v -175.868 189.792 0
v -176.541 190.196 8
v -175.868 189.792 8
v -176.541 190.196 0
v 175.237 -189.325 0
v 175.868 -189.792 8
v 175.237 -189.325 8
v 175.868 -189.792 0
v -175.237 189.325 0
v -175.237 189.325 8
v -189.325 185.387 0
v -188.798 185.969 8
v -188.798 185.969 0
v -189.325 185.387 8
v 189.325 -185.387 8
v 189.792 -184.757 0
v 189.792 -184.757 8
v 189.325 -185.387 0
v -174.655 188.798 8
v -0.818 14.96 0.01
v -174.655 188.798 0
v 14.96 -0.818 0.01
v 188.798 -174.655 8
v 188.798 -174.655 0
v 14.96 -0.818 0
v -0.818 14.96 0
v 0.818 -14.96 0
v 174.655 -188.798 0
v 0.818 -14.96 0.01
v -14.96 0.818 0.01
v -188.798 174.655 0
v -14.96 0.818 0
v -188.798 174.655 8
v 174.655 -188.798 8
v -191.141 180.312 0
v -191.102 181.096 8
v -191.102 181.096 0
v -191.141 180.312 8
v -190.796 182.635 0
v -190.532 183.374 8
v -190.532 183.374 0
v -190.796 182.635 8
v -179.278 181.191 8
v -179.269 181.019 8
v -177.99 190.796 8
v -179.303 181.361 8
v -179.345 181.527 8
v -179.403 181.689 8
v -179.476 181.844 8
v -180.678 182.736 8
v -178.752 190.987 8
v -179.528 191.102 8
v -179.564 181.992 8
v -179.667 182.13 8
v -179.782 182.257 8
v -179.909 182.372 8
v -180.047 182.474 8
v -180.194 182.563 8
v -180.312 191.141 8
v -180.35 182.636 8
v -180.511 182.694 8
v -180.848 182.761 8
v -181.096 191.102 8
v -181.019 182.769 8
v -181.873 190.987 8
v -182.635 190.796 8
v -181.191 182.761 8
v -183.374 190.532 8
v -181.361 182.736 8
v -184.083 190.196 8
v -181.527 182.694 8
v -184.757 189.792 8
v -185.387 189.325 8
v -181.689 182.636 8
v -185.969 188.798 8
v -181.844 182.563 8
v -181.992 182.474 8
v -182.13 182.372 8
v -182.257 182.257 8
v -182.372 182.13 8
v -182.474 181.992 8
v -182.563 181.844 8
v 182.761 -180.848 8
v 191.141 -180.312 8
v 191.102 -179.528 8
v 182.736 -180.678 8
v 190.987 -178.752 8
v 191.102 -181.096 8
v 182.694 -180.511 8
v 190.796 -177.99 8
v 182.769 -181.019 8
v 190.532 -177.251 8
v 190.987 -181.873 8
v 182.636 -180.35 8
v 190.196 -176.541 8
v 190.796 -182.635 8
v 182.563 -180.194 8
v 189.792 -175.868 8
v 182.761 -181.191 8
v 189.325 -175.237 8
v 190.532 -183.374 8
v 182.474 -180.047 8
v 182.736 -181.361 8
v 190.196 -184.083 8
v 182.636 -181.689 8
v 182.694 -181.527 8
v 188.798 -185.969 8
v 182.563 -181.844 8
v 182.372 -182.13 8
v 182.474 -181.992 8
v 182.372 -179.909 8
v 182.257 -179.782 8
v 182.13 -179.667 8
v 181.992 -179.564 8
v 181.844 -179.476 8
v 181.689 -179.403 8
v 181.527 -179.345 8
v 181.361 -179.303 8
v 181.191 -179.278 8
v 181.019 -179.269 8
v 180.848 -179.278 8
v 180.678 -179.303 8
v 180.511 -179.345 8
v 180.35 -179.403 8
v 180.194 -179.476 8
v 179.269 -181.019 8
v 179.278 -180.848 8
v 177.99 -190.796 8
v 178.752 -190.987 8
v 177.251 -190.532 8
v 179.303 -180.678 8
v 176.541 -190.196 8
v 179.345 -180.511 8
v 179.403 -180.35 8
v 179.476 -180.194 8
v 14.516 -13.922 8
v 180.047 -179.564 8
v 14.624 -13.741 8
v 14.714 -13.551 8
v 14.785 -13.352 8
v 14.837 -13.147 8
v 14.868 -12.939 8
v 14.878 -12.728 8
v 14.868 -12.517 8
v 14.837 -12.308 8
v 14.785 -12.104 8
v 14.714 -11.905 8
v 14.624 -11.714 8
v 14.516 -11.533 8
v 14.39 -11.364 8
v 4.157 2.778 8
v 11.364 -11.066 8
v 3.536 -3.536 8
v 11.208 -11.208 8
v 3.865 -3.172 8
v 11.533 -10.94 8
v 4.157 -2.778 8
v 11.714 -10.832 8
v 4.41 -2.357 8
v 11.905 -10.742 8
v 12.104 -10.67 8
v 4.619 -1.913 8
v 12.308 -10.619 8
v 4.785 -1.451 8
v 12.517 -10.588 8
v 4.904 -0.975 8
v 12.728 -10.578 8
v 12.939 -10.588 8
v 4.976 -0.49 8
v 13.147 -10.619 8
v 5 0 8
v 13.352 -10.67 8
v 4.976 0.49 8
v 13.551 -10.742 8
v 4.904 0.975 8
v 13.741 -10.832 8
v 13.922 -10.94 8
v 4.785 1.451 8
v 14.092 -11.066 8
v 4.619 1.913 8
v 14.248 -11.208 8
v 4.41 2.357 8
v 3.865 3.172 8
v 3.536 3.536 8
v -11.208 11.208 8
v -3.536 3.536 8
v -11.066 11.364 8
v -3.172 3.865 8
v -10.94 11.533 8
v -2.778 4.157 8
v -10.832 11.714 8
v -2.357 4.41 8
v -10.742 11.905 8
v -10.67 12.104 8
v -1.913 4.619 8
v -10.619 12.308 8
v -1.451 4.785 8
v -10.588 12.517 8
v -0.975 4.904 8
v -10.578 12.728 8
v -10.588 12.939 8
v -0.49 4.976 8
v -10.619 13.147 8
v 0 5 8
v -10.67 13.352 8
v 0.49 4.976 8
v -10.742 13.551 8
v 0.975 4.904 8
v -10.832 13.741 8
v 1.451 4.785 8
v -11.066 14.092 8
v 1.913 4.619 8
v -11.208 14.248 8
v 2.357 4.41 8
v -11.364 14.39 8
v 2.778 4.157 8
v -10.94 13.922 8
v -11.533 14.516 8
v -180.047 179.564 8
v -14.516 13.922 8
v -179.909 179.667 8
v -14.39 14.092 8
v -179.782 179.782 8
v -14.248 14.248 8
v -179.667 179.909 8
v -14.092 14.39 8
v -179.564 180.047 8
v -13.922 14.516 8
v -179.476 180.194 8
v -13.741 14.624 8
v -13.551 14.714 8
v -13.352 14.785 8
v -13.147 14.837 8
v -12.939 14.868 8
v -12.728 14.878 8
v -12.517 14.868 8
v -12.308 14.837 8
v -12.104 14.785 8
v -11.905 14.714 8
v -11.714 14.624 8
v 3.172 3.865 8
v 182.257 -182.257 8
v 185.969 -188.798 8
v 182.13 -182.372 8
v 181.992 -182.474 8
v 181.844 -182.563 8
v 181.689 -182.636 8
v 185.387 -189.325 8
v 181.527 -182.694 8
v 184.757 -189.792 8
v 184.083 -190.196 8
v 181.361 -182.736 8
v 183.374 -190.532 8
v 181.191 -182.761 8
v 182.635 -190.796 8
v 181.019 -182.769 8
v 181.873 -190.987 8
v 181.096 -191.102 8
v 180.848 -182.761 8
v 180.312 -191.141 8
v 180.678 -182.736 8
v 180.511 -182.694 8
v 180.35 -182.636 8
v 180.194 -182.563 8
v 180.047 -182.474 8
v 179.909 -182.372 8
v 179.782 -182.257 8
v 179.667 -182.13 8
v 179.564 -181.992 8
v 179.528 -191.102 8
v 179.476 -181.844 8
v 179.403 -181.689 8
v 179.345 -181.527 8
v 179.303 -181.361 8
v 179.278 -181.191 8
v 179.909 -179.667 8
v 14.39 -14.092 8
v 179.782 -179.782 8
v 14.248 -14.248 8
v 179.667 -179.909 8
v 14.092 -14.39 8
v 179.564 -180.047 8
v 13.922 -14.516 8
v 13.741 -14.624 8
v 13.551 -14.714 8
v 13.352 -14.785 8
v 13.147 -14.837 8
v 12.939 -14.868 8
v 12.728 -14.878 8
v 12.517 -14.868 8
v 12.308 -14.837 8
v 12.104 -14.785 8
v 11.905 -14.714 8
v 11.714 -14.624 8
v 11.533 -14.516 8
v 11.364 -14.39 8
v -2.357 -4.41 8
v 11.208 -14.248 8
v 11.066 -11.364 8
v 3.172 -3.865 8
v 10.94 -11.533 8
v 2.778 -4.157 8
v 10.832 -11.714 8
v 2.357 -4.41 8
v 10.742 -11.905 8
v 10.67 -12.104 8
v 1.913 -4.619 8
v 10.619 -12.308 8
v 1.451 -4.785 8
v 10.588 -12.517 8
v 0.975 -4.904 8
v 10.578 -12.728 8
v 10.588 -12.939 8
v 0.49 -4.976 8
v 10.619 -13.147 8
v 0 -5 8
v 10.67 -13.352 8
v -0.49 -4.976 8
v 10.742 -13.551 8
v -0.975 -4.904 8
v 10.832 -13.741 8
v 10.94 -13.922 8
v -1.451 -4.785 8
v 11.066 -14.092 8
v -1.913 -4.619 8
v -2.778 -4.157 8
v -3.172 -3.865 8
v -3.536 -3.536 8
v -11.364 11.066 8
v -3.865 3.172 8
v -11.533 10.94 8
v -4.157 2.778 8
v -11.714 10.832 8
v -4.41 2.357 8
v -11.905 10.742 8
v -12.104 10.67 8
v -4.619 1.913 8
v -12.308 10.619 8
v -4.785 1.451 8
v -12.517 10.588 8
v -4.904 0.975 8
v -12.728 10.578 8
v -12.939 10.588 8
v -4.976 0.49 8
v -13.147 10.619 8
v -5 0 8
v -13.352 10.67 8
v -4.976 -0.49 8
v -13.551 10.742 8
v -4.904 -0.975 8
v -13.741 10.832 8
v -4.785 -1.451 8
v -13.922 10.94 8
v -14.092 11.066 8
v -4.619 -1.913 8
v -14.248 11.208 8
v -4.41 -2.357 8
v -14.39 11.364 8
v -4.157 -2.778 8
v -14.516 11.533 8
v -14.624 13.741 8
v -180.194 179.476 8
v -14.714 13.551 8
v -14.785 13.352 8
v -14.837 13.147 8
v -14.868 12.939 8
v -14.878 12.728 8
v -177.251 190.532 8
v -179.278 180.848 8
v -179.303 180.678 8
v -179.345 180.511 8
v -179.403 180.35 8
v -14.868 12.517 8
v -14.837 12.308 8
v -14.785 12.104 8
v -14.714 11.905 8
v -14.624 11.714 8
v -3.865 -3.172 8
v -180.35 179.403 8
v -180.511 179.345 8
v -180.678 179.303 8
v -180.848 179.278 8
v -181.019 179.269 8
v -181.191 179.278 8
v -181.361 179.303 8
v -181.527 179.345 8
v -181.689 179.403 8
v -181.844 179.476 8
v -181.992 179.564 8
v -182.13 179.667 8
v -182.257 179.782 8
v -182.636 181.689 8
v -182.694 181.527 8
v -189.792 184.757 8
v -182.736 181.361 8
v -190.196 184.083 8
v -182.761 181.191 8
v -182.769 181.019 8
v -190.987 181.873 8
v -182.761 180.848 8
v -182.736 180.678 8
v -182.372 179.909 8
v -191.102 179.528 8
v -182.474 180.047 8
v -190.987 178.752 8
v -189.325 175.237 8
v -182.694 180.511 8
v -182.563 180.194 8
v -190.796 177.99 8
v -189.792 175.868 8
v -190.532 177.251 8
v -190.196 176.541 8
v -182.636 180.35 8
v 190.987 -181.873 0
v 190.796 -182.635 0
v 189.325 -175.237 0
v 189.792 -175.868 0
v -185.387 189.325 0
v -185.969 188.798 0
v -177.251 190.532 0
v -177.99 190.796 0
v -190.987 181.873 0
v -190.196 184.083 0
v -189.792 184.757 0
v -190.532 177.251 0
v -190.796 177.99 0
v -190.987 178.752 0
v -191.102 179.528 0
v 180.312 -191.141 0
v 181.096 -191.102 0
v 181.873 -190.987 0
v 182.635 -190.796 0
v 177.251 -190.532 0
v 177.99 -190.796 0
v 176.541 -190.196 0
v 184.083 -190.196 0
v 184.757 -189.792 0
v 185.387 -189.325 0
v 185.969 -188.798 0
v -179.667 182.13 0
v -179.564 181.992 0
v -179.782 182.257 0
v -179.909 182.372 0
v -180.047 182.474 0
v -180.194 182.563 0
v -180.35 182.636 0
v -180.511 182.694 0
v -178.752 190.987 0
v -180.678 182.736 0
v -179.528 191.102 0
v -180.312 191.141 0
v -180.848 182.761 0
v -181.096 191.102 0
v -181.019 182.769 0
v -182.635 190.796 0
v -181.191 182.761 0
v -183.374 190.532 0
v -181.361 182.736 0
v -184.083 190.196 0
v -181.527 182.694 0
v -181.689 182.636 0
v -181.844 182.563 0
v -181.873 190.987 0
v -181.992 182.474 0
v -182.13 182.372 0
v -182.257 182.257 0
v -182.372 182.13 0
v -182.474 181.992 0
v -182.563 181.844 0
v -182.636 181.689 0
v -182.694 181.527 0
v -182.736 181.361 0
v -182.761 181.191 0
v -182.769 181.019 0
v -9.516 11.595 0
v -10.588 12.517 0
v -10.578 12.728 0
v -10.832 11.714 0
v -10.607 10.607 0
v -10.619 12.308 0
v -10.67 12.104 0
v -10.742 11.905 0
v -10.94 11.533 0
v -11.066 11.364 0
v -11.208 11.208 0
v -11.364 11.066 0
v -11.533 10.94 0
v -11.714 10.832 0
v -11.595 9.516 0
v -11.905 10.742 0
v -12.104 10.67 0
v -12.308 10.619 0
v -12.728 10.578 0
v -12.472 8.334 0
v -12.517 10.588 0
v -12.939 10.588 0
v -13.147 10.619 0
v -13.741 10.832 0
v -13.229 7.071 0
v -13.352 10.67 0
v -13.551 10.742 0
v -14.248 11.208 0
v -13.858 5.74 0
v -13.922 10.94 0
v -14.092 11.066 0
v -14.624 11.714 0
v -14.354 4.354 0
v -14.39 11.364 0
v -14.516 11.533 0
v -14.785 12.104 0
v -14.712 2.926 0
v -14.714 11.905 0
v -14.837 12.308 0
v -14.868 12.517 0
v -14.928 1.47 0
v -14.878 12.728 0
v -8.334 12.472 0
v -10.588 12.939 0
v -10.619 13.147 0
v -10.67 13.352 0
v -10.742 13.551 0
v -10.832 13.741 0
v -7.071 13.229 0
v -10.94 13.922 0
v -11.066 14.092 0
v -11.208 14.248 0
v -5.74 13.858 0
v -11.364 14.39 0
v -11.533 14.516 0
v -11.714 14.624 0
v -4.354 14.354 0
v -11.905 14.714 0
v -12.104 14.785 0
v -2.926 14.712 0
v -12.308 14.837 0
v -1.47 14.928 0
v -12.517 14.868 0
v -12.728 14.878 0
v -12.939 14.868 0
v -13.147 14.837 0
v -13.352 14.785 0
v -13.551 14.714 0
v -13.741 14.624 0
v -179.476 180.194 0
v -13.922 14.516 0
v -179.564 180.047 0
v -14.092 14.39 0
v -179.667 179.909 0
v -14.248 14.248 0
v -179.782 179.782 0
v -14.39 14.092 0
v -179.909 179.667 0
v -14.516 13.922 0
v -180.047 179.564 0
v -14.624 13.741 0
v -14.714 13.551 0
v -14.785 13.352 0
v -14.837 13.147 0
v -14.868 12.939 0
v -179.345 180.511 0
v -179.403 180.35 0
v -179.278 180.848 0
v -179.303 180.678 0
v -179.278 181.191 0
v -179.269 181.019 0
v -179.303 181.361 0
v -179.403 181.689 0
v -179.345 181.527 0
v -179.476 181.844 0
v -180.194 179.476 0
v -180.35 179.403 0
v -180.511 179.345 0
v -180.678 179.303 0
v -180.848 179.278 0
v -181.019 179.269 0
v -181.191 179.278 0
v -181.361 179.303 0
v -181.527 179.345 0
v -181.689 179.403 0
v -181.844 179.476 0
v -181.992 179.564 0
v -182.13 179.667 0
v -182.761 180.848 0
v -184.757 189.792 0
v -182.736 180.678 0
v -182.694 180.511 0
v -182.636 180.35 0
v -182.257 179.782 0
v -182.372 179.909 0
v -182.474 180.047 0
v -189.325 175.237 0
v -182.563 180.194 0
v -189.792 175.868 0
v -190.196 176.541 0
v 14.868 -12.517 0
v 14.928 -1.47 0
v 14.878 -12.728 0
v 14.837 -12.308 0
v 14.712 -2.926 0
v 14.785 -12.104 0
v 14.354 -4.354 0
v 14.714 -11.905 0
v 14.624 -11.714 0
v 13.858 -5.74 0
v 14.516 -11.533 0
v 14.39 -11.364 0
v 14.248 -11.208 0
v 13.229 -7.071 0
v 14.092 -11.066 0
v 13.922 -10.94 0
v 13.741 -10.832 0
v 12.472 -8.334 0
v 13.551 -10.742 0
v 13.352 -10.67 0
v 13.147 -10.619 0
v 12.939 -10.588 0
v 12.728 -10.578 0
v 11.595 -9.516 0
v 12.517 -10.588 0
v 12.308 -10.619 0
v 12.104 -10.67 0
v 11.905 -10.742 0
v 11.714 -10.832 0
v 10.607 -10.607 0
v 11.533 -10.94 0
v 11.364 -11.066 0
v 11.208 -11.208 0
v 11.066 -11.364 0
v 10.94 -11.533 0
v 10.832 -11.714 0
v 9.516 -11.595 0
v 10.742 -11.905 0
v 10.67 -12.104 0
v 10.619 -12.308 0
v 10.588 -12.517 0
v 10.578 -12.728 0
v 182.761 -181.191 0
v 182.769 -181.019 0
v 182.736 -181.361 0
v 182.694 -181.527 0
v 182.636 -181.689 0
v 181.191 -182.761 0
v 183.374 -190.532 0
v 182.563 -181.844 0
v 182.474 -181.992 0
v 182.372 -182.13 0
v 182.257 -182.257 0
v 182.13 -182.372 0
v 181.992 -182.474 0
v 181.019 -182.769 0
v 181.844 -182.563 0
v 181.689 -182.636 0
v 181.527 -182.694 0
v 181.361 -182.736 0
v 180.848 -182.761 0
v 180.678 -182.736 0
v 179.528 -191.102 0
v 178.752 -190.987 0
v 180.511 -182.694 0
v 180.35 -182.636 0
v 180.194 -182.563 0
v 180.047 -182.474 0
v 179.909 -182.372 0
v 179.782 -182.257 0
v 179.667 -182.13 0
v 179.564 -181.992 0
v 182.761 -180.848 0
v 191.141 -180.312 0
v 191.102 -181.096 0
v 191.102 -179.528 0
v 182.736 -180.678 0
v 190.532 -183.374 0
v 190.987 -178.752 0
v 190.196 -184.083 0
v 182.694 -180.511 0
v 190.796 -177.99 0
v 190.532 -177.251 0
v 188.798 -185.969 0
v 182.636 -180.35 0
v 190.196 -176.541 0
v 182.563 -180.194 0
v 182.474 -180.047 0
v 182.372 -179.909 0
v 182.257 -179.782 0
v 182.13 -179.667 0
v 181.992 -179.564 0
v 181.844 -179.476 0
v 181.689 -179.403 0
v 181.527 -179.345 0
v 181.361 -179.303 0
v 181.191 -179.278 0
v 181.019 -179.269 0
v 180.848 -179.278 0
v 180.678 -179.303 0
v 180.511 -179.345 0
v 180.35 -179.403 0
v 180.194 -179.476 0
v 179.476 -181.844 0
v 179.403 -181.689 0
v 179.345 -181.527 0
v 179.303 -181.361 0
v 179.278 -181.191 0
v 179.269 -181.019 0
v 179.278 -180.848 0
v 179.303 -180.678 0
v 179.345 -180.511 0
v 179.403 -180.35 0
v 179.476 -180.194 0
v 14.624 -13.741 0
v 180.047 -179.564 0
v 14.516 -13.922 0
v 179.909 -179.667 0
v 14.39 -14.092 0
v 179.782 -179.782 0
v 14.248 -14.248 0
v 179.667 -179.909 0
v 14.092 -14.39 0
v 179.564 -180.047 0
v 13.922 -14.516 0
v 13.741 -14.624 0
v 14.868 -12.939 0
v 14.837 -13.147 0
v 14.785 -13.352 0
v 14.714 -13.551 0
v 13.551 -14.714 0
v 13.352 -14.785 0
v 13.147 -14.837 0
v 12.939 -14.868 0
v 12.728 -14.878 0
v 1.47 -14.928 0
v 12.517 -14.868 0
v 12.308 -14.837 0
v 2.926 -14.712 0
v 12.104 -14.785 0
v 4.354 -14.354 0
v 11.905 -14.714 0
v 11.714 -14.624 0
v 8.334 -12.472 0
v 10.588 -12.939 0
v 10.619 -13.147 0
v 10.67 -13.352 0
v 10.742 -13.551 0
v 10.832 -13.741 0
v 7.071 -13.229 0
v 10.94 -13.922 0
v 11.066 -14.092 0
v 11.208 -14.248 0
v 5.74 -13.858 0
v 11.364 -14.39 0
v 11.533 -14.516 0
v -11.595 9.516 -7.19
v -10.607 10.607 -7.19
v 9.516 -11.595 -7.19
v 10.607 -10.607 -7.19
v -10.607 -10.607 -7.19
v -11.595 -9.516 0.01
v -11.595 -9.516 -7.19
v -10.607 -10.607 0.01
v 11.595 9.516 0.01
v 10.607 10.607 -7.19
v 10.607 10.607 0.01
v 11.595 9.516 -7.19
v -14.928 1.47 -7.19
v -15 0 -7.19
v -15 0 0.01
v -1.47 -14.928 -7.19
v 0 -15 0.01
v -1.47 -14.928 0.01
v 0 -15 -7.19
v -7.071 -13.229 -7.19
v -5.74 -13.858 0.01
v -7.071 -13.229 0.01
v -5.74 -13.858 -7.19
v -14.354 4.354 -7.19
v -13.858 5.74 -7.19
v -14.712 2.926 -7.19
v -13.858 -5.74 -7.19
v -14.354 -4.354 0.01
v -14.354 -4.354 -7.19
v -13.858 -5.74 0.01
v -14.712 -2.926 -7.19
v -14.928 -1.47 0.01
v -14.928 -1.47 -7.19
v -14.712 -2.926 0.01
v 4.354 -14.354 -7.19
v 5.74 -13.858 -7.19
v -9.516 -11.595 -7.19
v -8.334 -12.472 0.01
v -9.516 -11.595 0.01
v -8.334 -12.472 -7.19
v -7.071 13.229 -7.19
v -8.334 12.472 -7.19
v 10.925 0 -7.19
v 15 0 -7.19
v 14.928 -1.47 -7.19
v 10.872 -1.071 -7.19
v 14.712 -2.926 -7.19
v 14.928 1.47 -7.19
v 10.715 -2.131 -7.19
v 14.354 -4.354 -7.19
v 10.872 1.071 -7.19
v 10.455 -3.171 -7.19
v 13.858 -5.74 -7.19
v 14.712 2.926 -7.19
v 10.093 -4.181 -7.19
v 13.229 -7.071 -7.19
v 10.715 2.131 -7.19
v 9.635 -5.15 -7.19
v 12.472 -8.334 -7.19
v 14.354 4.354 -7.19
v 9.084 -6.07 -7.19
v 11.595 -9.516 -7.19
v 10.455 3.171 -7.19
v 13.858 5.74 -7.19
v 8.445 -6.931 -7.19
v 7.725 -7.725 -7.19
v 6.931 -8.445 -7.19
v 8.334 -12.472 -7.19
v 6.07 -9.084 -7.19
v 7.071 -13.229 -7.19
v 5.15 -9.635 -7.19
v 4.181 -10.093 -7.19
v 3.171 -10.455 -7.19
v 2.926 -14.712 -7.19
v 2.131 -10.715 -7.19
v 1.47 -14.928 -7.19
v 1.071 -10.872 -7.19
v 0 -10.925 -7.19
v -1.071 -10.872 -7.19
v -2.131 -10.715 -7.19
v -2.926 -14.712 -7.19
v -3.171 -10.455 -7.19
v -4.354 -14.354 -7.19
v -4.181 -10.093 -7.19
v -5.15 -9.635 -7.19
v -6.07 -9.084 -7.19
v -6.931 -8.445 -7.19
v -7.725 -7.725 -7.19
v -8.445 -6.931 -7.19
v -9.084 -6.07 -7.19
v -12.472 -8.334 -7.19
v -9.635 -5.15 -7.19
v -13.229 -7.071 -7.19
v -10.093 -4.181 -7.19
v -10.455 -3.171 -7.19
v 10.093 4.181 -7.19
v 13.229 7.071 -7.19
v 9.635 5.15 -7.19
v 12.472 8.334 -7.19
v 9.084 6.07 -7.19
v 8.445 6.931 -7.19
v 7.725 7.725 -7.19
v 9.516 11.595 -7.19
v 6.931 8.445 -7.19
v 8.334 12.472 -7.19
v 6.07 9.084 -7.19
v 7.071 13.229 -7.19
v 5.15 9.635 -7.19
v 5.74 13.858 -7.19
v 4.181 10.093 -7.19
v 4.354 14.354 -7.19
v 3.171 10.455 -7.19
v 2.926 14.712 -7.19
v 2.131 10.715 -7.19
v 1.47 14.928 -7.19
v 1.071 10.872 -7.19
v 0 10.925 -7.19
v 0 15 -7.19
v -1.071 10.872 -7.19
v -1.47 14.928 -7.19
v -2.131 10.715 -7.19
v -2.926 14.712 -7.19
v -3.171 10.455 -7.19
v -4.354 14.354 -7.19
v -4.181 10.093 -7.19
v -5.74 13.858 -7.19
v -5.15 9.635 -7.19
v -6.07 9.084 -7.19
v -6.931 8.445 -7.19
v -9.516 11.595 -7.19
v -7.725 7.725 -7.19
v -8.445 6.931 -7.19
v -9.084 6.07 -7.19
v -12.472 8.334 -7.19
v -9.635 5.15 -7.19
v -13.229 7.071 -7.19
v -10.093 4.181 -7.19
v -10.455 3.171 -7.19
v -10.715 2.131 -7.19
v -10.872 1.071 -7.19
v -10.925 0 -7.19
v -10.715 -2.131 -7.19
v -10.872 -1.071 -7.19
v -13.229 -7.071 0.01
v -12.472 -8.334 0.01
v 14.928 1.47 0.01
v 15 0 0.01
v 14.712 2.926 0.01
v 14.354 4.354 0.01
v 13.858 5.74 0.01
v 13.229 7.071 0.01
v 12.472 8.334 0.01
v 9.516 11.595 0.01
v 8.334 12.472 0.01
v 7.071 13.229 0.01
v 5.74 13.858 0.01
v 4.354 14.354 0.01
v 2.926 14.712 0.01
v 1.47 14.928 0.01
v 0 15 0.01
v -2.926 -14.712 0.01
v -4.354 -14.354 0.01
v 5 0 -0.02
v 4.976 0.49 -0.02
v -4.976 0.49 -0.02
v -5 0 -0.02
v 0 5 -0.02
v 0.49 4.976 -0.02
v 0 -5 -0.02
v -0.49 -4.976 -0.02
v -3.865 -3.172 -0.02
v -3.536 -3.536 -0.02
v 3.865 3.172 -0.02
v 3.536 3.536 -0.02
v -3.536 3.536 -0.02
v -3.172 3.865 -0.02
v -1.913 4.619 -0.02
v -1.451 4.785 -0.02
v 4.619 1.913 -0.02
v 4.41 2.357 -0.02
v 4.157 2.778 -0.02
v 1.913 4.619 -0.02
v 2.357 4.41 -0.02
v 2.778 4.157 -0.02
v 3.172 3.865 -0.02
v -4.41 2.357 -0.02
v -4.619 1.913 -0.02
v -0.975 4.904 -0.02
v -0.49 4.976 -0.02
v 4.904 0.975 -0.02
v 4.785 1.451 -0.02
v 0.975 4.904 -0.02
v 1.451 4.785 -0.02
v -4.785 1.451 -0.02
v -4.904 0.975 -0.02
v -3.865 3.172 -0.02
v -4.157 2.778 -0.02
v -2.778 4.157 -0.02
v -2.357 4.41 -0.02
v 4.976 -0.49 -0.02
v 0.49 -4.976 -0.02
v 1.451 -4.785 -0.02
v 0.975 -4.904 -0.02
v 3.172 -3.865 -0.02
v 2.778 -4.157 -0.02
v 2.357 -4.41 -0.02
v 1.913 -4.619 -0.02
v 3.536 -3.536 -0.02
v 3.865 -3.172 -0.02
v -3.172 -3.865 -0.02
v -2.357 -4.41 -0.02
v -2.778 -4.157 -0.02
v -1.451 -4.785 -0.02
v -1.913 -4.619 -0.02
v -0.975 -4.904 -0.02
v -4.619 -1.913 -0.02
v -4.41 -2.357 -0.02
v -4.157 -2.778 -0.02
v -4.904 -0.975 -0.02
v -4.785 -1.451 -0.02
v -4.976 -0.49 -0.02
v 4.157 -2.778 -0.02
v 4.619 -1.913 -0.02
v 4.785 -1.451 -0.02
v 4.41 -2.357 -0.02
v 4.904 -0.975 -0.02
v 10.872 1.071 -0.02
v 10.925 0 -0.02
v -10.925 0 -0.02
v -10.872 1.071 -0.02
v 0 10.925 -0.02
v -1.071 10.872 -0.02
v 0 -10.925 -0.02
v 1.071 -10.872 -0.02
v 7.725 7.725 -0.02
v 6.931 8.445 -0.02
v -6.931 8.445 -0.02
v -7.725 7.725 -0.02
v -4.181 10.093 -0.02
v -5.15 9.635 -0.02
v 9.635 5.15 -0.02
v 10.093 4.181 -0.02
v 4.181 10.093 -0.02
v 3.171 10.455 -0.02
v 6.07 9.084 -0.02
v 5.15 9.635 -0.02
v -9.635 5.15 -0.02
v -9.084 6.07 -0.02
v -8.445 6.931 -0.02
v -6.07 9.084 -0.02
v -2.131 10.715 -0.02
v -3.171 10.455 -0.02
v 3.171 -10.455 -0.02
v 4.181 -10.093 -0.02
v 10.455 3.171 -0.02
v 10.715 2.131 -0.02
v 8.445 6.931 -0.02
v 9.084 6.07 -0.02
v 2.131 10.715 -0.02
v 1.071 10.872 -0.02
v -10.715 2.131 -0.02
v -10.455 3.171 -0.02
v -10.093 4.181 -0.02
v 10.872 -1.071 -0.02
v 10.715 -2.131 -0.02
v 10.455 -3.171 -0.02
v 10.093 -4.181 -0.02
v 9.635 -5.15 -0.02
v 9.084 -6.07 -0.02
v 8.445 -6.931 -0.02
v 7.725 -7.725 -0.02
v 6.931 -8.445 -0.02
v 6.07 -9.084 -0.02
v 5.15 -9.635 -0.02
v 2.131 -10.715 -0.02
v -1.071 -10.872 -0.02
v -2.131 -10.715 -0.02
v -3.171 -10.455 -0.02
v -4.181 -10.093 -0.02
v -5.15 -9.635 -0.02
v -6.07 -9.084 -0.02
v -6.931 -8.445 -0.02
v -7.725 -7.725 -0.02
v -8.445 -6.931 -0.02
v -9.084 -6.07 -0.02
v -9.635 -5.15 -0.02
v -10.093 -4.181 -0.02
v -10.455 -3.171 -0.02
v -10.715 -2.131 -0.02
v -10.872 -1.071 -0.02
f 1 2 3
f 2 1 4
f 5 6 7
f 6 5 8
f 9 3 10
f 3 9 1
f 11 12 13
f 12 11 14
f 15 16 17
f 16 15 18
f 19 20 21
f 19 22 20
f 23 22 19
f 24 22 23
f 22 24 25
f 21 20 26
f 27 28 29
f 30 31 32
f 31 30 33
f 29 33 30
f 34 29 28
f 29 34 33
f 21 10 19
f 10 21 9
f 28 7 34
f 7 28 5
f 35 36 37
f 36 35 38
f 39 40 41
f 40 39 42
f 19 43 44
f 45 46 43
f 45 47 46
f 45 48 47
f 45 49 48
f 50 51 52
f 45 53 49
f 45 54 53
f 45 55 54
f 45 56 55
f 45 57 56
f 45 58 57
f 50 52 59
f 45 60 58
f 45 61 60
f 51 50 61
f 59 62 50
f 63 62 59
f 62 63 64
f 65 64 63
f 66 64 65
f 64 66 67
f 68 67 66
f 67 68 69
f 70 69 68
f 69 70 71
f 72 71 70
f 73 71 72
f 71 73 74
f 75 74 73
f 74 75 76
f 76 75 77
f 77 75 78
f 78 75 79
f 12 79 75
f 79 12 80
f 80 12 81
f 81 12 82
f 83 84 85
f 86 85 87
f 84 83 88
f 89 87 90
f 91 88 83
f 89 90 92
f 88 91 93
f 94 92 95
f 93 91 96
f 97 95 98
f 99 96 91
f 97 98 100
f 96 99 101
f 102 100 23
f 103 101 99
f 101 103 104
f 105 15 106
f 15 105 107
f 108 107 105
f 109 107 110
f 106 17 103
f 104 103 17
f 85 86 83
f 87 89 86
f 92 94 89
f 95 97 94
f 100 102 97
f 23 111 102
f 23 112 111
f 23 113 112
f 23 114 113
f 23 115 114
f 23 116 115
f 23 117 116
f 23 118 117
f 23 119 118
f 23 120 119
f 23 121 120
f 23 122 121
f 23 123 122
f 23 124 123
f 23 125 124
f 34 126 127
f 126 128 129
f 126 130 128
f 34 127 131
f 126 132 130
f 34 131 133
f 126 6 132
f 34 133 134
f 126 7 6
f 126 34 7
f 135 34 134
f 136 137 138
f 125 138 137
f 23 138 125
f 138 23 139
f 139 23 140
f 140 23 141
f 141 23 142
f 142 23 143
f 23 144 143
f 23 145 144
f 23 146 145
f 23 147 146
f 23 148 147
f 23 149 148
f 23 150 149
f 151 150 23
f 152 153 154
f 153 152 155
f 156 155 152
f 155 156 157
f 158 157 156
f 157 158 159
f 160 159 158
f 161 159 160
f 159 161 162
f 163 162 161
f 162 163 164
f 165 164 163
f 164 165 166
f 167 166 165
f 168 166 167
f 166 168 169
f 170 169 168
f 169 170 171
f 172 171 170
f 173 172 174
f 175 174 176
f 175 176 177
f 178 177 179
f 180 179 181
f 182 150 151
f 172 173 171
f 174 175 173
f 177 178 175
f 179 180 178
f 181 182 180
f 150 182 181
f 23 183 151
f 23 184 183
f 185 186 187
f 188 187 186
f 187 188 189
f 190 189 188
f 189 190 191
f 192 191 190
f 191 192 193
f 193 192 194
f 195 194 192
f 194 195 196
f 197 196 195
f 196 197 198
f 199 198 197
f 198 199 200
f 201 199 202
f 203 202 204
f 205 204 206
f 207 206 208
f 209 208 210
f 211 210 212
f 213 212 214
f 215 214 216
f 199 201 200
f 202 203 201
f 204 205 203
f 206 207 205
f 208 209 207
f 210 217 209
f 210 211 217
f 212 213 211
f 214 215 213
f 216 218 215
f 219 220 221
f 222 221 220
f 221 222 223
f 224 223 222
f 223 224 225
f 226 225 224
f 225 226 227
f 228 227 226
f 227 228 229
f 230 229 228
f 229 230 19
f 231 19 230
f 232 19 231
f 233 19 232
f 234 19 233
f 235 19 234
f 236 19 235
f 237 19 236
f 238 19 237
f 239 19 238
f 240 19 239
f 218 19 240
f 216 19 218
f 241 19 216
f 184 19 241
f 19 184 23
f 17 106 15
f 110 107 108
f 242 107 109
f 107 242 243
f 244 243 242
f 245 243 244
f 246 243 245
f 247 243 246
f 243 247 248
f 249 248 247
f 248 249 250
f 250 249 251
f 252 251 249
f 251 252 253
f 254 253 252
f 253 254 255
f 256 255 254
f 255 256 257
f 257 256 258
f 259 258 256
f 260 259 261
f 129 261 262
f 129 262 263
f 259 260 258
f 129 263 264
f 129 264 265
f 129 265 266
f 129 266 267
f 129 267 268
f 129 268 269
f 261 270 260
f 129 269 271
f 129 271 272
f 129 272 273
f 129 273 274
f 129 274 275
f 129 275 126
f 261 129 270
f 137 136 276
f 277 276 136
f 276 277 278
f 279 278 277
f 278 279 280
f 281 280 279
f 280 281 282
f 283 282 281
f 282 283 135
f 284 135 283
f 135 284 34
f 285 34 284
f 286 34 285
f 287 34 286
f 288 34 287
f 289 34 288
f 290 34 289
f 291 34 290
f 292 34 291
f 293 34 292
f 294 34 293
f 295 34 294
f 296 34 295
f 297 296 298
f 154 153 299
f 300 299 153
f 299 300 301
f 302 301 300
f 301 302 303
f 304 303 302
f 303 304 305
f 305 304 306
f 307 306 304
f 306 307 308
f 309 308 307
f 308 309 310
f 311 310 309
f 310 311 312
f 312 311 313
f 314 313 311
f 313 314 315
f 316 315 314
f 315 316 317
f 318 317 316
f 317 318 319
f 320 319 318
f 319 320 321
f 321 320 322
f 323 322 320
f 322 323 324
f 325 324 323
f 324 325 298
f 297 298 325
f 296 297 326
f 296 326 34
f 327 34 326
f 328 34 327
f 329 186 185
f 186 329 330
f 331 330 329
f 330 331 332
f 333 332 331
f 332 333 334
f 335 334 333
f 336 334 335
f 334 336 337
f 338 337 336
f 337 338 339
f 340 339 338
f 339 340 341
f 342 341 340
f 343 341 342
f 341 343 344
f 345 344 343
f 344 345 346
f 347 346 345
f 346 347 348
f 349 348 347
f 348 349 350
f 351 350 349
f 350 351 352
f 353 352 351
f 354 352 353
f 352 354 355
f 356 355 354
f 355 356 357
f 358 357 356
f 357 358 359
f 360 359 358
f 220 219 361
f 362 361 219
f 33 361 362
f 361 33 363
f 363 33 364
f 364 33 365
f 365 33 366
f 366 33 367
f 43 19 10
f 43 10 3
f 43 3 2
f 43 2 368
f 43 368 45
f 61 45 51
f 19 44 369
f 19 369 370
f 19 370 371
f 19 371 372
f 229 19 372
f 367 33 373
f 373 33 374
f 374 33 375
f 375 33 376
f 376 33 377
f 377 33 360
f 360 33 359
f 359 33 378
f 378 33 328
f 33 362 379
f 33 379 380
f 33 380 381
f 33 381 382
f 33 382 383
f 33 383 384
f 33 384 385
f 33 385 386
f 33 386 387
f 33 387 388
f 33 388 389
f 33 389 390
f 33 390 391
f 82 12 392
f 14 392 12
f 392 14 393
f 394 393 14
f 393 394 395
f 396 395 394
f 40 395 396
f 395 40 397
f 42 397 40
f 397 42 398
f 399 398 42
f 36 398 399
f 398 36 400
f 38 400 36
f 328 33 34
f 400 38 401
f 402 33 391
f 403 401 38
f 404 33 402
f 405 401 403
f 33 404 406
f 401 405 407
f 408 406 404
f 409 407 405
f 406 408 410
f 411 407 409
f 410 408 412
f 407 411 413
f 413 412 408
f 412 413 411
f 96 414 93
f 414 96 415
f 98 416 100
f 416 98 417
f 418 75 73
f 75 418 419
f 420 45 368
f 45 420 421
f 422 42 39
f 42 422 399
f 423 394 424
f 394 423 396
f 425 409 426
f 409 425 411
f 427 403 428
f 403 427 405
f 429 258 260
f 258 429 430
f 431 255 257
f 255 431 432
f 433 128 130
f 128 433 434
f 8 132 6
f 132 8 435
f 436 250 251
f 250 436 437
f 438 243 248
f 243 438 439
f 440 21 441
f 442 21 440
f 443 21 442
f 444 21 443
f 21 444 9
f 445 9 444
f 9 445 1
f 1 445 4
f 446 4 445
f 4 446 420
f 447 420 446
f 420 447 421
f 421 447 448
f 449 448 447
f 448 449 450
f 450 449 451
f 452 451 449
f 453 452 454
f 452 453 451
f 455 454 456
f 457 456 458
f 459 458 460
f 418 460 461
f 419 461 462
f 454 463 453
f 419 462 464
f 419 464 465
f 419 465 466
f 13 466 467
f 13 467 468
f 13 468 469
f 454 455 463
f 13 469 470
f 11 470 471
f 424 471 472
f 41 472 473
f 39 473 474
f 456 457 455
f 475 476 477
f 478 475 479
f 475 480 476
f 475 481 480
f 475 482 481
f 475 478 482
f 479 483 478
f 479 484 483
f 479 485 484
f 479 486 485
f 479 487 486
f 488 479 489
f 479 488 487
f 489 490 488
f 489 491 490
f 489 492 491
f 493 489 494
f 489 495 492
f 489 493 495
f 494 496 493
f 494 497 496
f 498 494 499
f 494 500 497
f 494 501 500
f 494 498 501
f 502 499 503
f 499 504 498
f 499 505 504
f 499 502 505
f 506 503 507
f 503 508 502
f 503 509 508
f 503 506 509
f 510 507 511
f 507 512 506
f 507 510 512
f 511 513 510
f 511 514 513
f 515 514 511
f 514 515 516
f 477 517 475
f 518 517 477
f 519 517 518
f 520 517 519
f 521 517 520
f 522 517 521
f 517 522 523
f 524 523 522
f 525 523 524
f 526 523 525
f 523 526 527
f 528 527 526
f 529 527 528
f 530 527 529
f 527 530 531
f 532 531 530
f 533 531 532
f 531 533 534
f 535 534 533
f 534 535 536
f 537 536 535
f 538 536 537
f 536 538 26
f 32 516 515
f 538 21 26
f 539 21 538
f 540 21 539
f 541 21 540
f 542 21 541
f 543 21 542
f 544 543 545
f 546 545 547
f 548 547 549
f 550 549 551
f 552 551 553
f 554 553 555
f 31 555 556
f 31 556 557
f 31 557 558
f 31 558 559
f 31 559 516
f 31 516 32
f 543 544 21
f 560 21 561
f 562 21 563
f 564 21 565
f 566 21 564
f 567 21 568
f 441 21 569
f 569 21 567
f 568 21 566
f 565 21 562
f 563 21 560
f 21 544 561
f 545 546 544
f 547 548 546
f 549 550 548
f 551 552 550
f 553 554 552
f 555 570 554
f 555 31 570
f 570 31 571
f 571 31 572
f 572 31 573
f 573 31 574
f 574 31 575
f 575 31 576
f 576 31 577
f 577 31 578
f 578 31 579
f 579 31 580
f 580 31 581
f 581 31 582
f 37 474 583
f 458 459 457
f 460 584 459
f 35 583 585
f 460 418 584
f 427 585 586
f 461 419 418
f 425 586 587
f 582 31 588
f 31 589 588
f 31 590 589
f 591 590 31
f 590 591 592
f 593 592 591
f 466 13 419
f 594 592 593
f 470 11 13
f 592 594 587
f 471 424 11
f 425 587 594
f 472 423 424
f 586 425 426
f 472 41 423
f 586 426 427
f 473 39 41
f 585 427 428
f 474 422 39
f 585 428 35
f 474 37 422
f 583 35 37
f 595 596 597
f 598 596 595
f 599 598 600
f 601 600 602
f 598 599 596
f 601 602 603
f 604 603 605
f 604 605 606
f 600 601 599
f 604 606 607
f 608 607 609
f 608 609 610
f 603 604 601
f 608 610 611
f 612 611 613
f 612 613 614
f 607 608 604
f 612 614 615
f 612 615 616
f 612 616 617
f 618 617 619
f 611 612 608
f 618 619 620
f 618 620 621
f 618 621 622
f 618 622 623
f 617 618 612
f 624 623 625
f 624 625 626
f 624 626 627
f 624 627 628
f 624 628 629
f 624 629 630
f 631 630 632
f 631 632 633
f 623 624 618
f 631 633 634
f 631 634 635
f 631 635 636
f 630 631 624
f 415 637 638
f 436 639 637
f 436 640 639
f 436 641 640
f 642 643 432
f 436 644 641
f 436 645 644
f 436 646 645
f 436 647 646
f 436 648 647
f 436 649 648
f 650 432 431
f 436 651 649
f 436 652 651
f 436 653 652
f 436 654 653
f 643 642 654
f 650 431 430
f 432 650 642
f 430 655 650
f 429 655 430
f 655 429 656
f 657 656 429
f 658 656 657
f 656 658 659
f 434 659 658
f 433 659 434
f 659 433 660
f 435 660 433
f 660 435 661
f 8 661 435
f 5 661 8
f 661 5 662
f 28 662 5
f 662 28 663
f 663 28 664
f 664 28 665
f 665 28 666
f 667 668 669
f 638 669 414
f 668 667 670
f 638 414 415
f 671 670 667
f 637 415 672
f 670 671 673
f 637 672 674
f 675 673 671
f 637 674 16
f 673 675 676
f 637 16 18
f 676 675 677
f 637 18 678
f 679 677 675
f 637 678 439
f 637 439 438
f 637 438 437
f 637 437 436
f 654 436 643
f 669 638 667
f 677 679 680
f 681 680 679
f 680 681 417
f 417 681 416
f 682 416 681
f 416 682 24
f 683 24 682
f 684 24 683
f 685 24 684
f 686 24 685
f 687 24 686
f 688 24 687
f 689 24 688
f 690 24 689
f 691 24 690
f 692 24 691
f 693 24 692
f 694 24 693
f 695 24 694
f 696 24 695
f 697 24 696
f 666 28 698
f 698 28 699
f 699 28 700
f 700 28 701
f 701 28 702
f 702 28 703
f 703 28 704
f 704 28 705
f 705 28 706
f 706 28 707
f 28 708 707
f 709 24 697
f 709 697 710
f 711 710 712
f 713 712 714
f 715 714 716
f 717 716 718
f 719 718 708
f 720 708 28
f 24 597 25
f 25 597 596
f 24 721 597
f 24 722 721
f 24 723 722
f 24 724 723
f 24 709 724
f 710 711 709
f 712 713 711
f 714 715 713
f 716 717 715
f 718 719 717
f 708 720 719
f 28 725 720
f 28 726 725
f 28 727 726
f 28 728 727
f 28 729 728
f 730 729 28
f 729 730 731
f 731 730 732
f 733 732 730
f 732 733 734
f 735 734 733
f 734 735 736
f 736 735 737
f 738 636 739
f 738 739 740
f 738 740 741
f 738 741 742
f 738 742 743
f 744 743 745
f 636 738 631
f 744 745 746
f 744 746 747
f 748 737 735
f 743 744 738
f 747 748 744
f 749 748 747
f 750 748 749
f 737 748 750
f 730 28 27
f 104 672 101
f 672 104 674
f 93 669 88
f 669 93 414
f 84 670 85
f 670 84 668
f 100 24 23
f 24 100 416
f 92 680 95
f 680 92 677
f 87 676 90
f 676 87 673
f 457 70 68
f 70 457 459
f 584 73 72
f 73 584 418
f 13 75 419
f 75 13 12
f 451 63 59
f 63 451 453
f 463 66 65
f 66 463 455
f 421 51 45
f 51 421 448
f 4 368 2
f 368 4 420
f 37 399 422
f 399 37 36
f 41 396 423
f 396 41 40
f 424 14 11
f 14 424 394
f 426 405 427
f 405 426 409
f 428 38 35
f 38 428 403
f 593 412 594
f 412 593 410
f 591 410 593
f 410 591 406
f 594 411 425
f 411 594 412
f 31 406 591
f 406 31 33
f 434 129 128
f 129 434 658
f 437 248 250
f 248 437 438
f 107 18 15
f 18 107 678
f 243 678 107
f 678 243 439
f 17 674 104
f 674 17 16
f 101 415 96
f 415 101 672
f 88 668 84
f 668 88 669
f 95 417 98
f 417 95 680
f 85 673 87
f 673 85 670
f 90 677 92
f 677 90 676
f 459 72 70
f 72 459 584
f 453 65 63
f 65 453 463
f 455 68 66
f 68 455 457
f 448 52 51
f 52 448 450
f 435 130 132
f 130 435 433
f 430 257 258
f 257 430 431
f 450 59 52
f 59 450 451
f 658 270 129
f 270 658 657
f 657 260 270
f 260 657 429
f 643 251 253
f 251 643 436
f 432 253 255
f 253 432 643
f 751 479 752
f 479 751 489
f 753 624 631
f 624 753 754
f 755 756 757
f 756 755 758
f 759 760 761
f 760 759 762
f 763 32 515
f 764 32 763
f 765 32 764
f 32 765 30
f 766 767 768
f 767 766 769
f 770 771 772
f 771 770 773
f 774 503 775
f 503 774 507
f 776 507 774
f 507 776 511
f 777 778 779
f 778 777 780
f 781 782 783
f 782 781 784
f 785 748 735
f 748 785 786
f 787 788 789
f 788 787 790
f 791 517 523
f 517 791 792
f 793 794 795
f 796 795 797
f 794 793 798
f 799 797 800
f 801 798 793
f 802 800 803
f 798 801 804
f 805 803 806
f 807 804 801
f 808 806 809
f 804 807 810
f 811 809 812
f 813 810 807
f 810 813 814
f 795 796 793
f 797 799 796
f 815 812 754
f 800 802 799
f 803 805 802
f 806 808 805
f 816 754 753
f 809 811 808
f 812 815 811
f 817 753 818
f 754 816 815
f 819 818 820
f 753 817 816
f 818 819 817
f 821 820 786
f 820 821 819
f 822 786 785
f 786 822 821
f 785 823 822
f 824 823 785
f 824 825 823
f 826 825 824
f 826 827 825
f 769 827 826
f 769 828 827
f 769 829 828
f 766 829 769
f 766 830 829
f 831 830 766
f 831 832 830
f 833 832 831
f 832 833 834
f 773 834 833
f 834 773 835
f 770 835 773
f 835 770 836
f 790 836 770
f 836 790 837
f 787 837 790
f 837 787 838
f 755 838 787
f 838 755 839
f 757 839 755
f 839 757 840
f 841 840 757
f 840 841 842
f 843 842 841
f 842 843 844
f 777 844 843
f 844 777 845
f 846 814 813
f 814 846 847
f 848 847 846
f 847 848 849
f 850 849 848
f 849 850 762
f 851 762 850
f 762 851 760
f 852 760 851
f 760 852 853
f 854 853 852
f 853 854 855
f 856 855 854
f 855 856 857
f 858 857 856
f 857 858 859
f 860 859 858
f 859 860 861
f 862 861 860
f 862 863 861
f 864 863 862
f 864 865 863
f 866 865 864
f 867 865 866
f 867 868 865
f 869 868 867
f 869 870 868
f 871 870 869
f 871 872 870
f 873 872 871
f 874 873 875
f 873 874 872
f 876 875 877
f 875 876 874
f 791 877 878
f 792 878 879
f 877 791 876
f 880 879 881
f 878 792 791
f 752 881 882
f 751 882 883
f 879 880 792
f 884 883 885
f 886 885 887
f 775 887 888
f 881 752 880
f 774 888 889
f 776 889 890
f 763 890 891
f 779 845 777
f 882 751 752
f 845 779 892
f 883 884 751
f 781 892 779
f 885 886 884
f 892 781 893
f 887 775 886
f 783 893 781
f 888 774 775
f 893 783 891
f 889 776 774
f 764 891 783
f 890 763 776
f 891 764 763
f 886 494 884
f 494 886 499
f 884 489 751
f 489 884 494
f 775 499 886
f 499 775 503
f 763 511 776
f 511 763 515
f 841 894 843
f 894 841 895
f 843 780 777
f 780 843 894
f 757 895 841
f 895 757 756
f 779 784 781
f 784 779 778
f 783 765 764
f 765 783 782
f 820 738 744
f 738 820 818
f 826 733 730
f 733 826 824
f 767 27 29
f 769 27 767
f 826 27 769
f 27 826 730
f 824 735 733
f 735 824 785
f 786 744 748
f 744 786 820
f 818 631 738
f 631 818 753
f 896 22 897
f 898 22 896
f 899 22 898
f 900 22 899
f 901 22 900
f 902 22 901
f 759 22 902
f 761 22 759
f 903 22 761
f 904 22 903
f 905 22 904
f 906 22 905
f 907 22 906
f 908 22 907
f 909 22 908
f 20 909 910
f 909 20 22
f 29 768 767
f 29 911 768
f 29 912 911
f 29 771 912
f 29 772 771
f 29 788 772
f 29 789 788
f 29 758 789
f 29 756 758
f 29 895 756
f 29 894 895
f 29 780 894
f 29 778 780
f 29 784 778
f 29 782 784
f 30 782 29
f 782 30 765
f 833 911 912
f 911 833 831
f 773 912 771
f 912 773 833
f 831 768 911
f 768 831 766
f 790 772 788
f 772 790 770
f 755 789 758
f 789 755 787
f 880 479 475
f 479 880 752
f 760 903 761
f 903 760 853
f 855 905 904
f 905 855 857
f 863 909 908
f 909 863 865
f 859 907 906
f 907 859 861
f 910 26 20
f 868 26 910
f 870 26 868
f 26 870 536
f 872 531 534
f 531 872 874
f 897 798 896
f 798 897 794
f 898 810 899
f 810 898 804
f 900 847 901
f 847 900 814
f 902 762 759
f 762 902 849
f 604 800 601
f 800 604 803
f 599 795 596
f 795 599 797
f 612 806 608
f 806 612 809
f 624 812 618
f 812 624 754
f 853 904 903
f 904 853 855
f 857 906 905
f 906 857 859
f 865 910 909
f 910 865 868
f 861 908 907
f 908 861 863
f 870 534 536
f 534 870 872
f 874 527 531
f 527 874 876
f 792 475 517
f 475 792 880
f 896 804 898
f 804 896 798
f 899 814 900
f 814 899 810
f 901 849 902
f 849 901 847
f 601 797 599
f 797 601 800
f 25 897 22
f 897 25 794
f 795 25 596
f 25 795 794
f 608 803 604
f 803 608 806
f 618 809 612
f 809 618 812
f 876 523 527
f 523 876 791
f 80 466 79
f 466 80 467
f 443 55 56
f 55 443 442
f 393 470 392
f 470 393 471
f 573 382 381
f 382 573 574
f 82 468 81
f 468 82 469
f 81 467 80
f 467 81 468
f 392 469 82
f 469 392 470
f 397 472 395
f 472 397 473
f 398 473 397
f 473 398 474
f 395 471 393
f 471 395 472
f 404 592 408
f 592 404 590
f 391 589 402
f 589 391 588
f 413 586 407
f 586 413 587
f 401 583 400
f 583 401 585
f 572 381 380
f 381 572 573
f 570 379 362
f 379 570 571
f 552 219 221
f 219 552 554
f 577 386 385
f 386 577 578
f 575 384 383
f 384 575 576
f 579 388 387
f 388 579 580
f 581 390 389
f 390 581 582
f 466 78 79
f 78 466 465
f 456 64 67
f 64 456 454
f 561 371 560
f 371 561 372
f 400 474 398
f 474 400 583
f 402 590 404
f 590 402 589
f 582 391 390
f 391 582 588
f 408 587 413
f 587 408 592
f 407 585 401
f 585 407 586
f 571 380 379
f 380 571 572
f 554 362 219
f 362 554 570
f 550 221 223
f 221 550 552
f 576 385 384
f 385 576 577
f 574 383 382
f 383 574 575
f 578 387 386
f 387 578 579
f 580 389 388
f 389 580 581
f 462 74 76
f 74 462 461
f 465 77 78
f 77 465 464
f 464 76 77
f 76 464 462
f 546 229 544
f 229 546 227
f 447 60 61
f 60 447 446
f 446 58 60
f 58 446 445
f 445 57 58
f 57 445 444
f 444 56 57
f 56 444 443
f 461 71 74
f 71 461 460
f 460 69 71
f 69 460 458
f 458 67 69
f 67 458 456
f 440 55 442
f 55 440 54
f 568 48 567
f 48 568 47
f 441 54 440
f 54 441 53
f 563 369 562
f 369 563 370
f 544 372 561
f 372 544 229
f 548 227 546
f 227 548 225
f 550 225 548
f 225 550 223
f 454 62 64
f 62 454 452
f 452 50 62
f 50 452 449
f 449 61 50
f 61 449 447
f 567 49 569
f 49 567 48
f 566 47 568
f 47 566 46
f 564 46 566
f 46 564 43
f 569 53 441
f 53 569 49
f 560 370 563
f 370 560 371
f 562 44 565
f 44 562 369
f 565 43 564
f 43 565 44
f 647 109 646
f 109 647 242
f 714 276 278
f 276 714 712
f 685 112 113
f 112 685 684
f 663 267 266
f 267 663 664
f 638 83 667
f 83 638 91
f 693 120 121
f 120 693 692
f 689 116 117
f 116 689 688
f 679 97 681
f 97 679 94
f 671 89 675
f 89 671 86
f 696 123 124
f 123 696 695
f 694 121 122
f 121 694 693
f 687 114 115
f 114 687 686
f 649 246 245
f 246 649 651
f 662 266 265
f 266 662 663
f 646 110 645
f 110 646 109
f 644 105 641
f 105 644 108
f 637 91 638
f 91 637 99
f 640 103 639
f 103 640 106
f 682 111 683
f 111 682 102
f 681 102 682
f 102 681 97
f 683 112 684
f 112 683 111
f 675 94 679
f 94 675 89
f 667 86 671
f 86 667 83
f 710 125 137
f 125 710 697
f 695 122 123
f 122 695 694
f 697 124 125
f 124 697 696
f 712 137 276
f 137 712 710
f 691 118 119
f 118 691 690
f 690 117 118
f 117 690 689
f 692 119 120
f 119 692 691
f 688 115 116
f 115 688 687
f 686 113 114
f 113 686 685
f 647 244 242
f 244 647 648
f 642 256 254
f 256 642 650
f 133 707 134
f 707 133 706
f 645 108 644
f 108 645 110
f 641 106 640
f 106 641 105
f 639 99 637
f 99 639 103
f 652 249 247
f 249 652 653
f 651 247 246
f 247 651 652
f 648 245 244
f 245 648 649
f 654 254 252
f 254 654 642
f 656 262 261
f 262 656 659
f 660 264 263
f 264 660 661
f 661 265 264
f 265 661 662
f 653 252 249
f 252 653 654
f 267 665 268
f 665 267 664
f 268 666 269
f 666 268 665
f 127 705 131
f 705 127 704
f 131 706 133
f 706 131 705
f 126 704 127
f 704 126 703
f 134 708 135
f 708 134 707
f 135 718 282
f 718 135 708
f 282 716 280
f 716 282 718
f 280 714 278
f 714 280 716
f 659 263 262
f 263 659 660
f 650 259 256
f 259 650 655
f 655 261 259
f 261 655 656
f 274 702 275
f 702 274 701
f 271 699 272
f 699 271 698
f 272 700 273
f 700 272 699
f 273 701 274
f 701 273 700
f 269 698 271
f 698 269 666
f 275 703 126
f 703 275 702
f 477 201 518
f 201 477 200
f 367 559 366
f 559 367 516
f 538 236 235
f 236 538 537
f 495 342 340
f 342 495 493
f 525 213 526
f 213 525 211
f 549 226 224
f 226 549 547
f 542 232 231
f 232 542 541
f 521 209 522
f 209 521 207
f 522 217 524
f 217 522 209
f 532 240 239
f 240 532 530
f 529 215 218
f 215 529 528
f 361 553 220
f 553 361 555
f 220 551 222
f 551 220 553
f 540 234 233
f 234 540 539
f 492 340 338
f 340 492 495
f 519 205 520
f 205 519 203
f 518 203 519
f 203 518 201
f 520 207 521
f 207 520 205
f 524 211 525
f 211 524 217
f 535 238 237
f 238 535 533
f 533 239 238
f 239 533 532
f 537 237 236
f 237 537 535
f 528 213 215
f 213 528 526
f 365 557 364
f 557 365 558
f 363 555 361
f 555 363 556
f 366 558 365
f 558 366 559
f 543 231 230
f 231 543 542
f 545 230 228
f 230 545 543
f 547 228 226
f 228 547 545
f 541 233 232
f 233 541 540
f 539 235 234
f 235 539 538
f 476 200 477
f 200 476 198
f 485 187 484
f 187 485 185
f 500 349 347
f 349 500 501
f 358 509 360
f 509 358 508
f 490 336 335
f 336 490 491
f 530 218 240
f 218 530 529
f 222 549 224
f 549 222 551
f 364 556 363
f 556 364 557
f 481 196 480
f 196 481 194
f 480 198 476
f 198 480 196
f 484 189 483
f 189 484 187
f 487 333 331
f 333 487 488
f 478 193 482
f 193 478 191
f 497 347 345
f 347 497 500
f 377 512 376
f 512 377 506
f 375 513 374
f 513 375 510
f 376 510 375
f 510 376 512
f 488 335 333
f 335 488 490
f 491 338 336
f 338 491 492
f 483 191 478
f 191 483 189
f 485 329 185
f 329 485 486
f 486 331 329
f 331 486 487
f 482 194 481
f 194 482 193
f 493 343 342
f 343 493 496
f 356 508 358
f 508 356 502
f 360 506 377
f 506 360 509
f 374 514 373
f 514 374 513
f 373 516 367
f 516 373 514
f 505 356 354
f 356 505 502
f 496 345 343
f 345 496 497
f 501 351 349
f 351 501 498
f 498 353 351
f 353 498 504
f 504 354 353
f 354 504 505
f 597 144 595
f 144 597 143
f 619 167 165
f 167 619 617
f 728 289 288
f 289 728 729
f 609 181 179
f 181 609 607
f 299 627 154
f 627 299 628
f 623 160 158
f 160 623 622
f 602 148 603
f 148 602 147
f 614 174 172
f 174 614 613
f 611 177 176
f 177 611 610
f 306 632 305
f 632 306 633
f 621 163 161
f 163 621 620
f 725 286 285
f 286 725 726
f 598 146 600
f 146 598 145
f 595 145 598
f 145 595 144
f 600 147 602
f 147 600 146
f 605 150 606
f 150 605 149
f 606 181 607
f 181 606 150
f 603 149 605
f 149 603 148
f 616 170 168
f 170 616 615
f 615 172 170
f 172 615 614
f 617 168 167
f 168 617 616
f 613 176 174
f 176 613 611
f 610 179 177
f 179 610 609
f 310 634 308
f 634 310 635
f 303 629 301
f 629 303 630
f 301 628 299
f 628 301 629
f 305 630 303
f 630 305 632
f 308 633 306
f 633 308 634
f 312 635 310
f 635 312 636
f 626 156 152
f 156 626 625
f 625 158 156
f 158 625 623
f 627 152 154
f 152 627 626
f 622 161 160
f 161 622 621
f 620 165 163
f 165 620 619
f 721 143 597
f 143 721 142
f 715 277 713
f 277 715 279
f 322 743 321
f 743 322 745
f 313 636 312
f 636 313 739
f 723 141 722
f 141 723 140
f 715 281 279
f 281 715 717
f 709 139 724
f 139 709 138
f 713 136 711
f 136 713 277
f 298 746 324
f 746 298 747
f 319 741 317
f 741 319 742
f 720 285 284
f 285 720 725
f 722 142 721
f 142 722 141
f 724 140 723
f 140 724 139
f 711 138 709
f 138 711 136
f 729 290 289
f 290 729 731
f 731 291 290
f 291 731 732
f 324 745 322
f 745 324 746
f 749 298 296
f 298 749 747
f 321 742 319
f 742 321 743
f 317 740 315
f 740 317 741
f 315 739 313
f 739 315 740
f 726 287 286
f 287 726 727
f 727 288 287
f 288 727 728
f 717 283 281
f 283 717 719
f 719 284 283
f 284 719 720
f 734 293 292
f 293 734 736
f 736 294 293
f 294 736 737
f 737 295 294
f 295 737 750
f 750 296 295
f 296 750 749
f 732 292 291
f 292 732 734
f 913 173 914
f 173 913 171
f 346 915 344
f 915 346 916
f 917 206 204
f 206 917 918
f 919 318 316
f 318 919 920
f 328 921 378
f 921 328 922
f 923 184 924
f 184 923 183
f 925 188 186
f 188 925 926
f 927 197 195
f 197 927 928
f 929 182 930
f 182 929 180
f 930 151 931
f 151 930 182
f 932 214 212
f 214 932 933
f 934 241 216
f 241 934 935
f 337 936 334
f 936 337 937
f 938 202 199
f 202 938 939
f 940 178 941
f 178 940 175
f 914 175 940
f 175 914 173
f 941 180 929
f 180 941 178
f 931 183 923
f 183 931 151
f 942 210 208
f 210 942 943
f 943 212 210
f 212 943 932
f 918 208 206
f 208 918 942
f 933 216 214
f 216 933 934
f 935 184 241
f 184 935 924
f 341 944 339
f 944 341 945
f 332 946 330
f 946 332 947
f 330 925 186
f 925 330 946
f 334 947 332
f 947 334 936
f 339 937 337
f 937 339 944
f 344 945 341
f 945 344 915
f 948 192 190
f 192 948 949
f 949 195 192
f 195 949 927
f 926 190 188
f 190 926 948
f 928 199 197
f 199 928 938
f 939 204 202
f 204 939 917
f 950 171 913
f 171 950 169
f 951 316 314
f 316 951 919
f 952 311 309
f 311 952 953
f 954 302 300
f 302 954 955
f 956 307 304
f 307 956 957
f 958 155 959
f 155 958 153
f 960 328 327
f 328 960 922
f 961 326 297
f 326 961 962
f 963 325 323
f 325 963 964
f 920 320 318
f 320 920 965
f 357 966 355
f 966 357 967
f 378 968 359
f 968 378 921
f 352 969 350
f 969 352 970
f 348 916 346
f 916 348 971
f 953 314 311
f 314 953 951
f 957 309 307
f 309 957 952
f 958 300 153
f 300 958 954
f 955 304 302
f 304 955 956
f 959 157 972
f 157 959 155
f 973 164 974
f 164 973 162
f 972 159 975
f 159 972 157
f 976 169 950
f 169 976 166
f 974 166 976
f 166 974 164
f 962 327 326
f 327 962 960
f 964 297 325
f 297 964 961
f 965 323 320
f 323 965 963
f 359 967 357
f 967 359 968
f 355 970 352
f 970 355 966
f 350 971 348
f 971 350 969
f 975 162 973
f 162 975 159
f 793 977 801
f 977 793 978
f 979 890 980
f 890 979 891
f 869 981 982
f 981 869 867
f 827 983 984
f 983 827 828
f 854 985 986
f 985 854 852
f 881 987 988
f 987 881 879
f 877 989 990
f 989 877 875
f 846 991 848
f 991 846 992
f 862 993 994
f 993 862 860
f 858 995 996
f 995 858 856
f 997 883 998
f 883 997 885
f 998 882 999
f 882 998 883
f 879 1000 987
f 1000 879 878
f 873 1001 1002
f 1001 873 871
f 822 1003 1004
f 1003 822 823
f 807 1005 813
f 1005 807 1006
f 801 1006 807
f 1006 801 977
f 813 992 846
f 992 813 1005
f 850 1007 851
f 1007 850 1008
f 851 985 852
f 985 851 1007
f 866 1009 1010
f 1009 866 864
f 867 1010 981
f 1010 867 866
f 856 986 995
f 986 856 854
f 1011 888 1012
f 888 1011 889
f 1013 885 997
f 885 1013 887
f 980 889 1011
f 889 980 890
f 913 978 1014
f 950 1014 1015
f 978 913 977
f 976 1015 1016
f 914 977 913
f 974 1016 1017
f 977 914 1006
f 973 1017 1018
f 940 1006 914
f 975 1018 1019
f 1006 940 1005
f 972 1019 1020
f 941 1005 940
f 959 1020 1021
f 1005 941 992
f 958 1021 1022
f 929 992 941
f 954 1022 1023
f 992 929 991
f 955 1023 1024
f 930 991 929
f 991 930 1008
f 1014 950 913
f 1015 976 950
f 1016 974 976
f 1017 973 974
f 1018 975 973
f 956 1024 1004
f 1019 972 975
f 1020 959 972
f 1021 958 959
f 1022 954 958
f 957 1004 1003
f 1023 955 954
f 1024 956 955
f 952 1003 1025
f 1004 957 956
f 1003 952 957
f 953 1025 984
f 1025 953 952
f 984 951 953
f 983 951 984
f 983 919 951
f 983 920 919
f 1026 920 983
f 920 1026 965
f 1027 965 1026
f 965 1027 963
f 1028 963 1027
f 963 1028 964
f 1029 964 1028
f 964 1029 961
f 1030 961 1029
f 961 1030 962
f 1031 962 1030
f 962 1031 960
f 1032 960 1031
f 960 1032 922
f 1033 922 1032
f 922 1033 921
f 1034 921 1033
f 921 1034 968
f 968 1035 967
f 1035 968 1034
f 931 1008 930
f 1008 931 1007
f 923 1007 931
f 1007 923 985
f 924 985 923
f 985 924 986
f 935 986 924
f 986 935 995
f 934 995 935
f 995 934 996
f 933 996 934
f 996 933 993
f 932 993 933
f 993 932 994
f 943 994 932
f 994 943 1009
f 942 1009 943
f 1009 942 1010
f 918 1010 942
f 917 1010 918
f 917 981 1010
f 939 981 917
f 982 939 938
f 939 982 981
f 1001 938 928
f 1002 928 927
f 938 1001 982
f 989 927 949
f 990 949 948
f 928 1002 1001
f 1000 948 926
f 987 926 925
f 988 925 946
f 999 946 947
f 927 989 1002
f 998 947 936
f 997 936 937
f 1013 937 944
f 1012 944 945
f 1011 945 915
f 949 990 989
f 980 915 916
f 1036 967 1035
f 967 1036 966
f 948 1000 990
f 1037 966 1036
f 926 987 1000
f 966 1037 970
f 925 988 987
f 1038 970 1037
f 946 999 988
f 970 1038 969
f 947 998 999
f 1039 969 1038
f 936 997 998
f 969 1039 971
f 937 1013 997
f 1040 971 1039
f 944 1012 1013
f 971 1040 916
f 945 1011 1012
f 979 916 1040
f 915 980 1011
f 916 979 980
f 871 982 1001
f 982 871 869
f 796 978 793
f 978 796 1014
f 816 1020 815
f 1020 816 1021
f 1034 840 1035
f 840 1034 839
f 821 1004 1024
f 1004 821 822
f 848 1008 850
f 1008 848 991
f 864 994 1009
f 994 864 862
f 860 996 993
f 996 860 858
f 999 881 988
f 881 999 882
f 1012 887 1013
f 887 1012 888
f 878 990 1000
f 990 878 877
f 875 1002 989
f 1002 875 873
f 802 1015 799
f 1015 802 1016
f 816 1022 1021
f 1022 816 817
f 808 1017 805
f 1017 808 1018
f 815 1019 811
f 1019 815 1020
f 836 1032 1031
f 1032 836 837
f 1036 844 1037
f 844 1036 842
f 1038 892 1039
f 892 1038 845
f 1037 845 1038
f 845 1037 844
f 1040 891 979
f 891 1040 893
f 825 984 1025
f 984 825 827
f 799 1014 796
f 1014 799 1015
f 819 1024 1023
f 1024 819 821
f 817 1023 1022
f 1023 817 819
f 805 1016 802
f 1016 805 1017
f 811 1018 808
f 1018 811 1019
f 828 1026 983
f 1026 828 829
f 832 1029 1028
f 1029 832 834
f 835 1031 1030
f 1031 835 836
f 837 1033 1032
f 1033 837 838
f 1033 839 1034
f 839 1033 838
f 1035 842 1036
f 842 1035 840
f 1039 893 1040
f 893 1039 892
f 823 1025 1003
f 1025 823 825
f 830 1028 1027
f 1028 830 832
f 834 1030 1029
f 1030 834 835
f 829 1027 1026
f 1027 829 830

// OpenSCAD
// Gen-DW — rear BEARING BRIDGE (bar endbell, 2026-10-10): a 608 boss on a 20 mm wide bar that spans the
// two frame rods at 135 deg and 135+180 deg (R = flange_bolt_r). The front bridge uses the rods at 45/225 deg, the rear
// bridge the rods at 135/315 deg, so the two bridges cross at 90 deg and the stator is held at 4 points.
// A bar instead of a full disc is what lets this big-ring kit fit ONE 410 mm plate. Print flat face DOWN (boss up, no supports).
// Brace holes (temporary M4 jack rods, R = brace_r) sit on the bar axis.
include <parameters.scad>;
$fn = 64;
bar_w = 20;
bar_len = 2 * (flange_bolt_r + 9);
module bar_2d() { offset(r=8) offset(delta=-8) square([bar_len, bar_w], center=true); }
difference() {
    rotate([0, 0, 135]) union() {
        linear_extrude(endbell_thick) bar_2d();
        translate([0, 0, -bearing_h + 0.01]) cylinder(d=30, h=bearing_h);
    }
    translate([0, 0, -bearing_h - 0.1]) cylinder(d=endbell_shaft_clear, h=50);
    translate([0, 0, -bearing_h - 0.02]) cylinder(d=bearing_d, h=bearing_h);
    for (s = [0, 180]) rotate([0, 0, 135 + s]) translate([flange_bolt_r, 0, -20]) cylinder(d=m3_clear, h=60);
    for (a = brace_angles) translate([brace_r*cos(a), brace_r*sin(a), -20]) cylinder(d=brace_d, h=50);
}
